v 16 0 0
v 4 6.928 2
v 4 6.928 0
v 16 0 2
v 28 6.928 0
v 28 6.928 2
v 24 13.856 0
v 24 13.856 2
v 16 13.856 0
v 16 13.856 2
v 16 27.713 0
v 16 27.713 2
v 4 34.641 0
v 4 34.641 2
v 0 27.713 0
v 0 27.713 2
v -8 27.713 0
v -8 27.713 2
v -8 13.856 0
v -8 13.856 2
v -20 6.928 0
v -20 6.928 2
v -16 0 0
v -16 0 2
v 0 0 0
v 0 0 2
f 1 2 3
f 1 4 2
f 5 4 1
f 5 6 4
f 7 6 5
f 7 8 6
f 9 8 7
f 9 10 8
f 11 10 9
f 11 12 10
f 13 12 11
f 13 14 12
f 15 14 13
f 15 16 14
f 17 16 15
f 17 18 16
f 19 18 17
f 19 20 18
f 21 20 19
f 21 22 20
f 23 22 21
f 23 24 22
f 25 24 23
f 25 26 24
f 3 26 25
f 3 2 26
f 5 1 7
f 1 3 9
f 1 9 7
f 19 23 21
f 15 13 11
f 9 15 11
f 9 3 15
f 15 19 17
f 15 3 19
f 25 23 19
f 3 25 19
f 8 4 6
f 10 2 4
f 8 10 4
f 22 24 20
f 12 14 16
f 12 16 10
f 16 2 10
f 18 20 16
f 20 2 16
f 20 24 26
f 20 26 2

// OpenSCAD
x = 16.0;
y = 2.0;

linear_extrude(y) {
    polygon(points=[[0, 0],
                    [-x, 0],
                    [-5*x/4, x*sqrt(3)/4],
                    [-x/2, x*sqrt(3)/2],
                    [-x/2, x*sqrt(3)],
                    [0, x*sqrt(3)],
                    [x/4, 5*x*sqrt(3)/4],
                    [x, x*sqrt(3)],
                    [x, x*sqrt(3)/2],
                    [3*x/2, x*sqrt(3)/2],
                    [7*x/4, x*sqrt(3)/4],
                    [x, 0],
                    [x/4, x*sqrt(3)/4]]);
}
